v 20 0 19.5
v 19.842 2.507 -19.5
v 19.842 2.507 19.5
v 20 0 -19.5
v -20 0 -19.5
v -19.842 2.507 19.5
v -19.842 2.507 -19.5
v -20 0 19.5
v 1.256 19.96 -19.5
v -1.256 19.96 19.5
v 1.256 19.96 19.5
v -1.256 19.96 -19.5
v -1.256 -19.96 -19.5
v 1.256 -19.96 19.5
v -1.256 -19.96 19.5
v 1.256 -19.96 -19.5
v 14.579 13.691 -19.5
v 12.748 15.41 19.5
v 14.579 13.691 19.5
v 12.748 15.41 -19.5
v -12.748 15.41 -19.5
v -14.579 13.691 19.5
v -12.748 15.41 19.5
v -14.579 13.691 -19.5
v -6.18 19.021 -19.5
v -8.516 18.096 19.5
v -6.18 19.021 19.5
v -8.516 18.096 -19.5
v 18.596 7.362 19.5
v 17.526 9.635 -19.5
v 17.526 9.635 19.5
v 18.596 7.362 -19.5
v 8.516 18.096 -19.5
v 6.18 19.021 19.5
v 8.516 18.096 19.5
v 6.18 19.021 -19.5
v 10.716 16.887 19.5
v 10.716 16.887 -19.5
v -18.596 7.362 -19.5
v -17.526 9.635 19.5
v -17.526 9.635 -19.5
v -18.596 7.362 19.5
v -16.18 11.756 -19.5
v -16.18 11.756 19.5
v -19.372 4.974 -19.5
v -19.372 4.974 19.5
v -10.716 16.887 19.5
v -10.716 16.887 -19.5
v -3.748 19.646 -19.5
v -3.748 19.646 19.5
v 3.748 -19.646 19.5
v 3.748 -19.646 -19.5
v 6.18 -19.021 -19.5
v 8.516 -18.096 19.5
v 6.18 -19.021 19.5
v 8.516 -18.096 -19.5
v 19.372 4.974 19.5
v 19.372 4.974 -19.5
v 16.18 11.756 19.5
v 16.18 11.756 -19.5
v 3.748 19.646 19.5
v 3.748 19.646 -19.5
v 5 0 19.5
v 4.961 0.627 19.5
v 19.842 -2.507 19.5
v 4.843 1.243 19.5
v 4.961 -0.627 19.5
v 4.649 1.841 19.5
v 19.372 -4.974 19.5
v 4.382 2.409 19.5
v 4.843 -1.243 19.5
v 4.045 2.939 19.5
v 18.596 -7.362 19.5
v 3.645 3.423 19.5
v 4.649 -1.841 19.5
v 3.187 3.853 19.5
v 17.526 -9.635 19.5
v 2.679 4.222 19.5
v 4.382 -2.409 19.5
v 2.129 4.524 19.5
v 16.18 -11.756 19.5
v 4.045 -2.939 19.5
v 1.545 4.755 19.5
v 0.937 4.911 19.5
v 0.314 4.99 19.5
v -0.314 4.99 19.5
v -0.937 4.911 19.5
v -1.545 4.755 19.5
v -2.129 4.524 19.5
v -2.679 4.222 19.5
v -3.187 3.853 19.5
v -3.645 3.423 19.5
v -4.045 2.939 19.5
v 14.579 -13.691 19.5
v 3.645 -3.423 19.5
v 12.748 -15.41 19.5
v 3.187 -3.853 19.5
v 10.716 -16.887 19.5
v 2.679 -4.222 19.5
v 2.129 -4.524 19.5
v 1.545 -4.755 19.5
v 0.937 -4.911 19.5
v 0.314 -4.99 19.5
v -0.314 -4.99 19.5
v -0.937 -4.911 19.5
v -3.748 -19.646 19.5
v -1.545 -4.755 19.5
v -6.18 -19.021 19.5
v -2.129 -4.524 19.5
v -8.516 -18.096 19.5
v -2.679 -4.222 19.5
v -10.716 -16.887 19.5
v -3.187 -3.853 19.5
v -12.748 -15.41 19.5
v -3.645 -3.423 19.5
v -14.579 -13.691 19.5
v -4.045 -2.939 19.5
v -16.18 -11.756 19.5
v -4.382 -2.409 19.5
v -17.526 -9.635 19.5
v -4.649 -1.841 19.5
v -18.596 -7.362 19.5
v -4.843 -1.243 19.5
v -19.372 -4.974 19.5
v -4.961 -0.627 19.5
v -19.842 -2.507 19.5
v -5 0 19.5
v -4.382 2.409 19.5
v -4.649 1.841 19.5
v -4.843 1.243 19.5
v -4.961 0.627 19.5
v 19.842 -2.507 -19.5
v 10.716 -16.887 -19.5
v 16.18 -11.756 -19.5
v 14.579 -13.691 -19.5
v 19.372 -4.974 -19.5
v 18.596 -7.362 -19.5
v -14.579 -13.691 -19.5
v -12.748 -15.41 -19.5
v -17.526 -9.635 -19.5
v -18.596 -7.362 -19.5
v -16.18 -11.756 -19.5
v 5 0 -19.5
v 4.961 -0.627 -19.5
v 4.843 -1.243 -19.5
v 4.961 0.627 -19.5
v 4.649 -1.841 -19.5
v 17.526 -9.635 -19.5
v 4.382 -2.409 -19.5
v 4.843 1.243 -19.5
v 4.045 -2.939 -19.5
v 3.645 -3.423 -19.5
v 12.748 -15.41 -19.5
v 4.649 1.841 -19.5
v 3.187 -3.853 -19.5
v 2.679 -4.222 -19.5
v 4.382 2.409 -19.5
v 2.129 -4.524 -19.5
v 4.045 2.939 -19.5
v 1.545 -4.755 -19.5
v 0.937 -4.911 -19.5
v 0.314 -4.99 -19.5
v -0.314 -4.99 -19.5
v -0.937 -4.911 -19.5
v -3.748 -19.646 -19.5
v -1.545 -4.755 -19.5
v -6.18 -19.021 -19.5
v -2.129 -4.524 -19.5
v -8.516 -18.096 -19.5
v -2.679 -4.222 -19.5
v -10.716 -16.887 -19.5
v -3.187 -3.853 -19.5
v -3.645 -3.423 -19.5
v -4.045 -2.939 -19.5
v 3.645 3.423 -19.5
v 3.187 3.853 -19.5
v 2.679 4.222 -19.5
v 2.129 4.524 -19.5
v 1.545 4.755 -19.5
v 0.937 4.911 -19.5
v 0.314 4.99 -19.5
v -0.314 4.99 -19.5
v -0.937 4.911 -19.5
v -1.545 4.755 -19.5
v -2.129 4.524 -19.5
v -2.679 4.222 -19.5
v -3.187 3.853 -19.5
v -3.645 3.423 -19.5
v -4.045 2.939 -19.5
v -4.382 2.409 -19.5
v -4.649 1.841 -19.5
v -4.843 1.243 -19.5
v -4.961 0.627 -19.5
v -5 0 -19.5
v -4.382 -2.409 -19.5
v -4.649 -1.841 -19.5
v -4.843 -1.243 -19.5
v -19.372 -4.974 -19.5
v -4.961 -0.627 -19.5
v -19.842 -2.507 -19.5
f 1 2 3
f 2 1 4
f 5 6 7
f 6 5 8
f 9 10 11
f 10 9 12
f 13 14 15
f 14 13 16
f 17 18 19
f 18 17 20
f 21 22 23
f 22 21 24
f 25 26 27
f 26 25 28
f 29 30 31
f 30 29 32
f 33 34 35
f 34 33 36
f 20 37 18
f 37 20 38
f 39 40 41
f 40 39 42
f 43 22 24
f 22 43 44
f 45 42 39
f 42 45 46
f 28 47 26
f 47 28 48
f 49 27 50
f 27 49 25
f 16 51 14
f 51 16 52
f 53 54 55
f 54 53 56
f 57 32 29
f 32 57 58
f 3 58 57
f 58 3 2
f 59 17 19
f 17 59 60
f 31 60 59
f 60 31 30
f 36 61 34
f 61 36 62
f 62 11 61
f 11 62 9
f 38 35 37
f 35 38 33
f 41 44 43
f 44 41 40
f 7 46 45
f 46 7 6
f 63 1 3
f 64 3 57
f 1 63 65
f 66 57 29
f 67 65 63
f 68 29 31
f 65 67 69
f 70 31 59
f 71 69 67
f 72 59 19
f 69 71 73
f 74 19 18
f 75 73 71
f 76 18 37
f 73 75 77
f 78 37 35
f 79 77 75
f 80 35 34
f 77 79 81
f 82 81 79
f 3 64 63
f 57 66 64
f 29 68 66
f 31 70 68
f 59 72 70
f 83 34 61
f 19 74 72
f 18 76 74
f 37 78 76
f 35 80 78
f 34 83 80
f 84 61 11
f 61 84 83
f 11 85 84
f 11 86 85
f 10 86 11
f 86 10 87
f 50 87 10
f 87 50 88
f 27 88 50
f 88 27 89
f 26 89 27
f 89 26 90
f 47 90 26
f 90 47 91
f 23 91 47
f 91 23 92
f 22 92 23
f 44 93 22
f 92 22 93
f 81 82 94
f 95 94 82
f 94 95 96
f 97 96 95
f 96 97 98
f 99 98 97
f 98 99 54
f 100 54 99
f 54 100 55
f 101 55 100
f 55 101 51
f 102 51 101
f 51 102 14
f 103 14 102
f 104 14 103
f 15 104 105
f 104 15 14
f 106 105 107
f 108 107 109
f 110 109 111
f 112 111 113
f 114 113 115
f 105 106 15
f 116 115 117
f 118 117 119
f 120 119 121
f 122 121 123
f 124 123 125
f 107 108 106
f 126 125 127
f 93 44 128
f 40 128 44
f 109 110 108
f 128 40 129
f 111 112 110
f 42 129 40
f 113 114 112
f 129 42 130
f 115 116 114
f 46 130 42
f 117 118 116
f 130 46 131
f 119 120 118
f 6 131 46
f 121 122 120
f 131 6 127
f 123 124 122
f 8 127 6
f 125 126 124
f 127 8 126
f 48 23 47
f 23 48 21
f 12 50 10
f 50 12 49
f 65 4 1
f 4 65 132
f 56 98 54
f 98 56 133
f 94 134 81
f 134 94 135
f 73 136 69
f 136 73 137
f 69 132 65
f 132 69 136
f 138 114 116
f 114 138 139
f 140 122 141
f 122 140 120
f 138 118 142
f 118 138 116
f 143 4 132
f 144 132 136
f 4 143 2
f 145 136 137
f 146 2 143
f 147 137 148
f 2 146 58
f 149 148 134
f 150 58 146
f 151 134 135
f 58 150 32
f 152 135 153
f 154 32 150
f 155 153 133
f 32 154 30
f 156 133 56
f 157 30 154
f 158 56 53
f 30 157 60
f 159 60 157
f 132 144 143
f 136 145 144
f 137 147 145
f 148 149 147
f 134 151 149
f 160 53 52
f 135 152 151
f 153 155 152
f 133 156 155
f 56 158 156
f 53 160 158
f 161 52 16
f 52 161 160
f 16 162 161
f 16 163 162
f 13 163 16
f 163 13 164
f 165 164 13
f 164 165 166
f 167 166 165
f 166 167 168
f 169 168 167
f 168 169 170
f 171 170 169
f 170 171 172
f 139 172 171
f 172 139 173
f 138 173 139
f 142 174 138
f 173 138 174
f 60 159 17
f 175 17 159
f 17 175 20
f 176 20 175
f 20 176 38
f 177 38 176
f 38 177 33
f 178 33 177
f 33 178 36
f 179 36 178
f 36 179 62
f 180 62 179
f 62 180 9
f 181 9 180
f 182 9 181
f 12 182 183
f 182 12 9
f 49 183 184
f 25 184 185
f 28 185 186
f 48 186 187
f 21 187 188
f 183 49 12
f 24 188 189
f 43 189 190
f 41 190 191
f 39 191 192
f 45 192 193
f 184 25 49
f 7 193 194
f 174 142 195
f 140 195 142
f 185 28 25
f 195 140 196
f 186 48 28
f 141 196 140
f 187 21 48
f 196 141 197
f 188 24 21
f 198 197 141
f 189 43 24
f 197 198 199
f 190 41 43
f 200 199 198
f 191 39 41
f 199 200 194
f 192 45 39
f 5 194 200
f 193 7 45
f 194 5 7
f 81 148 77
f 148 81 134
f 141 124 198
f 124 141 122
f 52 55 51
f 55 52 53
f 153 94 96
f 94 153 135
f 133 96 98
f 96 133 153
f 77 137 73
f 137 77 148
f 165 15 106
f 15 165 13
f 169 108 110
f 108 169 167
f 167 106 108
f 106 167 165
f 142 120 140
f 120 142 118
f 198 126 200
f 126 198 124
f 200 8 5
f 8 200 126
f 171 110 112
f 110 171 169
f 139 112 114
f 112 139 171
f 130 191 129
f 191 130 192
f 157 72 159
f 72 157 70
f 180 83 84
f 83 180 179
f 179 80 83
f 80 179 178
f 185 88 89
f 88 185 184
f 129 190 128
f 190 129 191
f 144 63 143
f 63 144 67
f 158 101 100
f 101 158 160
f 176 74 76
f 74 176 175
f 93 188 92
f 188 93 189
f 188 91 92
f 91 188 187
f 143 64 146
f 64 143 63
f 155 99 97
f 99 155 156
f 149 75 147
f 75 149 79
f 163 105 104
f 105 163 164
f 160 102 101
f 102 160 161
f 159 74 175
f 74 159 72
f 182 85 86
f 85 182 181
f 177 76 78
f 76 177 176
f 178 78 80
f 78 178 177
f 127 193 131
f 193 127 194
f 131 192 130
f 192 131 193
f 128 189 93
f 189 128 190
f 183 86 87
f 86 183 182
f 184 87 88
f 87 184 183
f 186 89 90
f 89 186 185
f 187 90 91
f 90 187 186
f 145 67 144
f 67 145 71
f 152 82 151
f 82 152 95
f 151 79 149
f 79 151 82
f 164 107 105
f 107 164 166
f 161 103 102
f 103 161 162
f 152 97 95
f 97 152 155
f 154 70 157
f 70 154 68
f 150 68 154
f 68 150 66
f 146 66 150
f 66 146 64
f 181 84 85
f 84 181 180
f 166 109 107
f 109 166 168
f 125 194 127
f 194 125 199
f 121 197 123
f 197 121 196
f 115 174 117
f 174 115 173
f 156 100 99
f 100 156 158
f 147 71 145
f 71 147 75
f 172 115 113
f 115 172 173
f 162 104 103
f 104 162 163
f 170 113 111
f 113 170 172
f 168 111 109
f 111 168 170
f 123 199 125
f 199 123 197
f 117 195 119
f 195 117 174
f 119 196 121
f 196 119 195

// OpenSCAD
$fn = 50;


difference() {
	union() {
		translate(v = [0, 0, -19.5000000000]) {
			cylinder(h = 39, r = 20.0000000000);
		}
	}
	union() {
		translate(v = [0, 0, -100.0000000000]) {
			cylinder(h = 200, r = 5.0000000000);
		}
	}
}
